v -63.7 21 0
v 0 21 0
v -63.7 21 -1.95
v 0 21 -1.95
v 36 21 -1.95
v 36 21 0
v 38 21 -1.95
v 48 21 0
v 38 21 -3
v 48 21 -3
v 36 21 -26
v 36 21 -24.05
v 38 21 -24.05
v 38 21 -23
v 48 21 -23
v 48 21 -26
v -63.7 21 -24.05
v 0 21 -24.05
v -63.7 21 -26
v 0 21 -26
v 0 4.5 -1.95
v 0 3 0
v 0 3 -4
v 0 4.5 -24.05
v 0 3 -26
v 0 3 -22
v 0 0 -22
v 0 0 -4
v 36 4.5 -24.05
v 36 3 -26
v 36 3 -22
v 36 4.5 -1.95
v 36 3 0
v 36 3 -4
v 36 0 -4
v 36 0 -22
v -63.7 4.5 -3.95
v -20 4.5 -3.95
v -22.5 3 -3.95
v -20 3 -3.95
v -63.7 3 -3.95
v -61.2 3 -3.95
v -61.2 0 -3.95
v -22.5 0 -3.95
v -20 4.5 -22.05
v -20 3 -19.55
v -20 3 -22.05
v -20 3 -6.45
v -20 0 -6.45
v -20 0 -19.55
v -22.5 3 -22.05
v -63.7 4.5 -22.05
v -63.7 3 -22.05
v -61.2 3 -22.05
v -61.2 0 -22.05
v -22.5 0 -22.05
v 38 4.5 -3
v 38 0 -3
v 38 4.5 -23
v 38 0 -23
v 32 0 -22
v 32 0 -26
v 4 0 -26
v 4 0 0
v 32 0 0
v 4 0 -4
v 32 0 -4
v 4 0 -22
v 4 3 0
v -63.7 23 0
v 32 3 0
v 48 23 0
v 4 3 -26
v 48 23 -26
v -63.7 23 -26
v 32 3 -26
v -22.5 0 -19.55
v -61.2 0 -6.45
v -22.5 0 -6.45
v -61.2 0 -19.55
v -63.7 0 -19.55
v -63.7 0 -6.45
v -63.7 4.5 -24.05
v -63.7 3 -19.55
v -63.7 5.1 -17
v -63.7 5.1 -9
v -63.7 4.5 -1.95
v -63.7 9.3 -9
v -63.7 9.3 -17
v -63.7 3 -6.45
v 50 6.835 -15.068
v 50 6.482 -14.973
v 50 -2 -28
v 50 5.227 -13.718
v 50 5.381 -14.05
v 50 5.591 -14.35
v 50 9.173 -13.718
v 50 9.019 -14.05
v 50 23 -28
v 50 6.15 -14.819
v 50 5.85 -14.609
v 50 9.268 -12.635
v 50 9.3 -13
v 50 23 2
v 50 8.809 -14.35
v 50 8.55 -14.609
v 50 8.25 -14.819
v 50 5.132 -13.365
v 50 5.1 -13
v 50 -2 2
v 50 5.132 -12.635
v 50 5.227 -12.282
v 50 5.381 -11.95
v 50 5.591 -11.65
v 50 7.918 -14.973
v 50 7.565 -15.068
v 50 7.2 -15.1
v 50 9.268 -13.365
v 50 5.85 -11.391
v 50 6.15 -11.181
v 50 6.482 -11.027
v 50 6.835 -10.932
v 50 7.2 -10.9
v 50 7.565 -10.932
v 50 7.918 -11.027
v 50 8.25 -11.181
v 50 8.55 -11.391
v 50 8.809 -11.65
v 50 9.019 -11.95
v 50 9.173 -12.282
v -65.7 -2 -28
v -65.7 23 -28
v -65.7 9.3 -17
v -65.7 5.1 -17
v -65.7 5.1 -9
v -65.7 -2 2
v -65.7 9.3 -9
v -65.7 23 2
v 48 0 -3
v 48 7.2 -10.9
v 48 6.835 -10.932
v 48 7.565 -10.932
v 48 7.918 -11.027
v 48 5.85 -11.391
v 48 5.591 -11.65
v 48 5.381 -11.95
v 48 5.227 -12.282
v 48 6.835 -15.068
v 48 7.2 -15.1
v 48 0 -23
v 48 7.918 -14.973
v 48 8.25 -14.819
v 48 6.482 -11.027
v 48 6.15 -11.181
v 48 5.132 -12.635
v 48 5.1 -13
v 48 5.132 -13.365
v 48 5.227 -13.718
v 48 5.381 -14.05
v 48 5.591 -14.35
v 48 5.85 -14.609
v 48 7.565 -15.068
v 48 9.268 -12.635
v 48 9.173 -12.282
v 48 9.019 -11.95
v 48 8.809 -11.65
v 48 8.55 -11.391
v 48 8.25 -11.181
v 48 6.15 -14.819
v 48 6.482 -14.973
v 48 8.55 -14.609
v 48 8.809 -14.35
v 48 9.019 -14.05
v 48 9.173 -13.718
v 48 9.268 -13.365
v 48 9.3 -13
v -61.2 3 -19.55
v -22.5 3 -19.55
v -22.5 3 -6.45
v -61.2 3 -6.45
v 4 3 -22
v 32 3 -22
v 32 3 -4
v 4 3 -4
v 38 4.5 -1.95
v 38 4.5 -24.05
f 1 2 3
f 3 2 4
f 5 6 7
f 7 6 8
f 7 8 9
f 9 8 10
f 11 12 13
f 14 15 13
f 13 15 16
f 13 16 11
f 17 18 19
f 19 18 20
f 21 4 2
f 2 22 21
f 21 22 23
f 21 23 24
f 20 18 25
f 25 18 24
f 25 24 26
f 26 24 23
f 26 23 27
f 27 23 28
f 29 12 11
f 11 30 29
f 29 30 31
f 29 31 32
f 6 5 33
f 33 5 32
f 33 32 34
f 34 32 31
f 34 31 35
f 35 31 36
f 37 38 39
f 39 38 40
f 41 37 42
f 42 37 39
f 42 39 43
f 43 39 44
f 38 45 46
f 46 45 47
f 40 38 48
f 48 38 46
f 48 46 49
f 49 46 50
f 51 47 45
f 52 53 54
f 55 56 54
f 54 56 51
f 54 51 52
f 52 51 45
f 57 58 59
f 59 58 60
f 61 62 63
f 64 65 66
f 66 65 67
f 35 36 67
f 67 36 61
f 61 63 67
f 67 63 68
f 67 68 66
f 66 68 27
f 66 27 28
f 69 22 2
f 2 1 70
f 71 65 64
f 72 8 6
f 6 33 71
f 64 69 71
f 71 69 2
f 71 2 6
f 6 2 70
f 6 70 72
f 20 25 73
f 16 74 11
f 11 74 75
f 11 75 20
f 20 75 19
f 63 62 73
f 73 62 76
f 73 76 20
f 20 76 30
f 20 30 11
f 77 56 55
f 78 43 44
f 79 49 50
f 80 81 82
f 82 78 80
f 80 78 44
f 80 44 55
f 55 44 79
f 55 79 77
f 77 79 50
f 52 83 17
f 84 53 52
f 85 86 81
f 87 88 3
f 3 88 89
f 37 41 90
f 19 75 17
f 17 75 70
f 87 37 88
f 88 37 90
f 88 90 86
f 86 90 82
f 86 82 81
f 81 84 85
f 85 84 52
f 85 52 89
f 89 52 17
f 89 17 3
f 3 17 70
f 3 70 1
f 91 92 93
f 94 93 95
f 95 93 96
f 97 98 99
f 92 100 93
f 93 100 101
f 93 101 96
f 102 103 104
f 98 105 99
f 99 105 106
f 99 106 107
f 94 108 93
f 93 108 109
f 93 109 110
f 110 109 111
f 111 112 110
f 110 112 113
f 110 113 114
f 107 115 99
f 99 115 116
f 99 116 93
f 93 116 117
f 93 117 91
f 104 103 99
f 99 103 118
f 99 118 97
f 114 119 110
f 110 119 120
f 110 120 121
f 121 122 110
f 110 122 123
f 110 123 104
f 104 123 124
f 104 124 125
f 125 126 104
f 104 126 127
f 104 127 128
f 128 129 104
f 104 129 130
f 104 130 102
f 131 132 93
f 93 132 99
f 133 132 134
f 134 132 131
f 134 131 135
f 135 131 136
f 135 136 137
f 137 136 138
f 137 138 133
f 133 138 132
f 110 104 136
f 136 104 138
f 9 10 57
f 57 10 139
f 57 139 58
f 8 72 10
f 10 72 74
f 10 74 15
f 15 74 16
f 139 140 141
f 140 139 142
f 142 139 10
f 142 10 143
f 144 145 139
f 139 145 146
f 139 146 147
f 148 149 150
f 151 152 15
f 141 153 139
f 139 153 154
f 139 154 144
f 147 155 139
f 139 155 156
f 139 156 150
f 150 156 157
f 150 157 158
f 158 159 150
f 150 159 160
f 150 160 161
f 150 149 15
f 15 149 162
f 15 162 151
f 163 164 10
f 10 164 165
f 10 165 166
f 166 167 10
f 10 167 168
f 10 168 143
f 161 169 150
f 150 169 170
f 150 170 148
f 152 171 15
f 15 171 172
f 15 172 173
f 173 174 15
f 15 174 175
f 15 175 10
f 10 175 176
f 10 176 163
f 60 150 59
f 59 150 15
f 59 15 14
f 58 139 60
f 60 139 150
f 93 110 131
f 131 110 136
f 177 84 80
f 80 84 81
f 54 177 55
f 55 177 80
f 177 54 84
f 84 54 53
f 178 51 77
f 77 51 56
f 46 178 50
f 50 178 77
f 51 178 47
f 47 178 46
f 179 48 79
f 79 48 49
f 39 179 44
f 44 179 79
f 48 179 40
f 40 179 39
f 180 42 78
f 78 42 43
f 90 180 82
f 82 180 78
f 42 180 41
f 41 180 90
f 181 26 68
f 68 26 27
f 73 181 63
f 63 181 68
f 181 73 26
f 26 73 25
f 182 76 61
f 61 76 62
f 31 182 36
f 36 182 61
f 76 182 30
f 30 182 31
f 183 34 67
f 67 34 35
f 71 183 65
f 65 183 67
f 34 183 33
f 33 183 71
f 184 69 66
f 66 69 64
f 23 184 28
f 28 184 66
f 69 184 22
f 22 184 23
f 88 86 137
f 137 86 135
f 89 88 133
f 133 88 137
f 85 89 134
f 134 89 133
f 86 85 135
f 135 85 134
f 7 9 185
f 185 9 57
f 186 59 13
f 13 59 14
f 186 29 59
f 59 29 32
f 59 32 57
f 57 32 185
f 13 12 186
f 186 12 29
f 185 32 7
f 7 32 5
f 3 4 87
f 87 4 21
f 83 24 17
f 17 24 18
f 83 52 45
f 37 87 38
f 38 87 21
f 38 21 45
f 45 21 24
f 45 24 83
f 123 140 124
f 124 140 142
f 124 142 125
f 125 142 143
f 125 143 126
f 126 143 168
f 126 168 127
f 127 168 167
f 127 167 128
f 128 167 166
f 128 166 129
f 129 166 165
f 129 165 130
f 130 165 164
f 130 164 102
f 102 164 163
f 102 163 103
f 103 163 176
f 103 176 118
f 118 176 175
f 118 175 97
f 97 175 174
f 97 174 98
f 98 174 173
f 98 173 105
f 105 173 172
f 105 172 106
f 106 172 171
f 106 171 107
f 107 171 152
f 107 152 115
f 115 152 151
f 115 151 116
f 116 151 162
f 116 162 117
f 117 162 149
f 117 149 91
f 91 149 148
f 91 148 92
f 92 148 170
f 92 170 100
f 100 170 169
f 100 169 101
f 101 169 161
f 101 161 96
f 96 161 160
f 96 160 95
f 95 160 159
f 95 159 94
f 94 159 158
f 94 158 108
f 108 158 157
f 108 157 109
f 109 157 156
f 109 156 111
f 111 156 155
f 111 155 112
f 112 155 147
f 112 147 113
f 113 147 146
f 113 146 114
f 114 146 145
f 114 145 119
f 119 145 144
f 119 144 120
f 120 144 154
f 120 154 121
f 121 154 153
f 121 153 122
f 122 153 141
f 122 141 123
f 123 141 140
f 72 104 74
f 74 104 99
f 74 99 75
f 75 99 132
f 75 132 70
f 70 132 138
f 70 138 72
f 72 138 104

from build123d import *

# Parameters (mm, degrees)
ESQUISSE1_W             = 115.7
ESQUISSE1_H             = 30
ESQUISSE1_W_2           = 36
ESQUISSE1_H_2           = 26
ESQUISSE1_W_3           = 43.7
ESQUISSE1_H_3           = 18.1
ESQUISSE1_W_4           = 10
ESQUISSE1_H_4           = 20
BOSS_EXTRU_1_DEPTH      = 21
ESQUISSE2_W             = 115.7
ESQUISSE2_H             = 30
BOSS_EXTRU_2_DEPTH      = 2
ESQUISSE3_W             = 2.5
ESQUISSE3_H             = 2.5
BOSS_EXTRU_3_DEPTH      = 3
ESQUISSE4_W             = 4
ESQUISSE4_H             = 4
BOSS_EXTRU_4_DEPTH      = 3
ESQUISSE5_W             = 8
ESQUISSE5_H             = 4.2
ENL_V_MAT_EXTRU_1_DEPTH = 2
ESQUISSE7_W             = 101.7
ESQUISSE7_H             = 22.1
ENL_V_MAT_EXTRU_2_DEPTH = 16.5
ESQUISSE8_R             = 2.1
ENL_V_MAT_EXTRU_3_DEPTH = 2
ESQUISSE9_W             = 115.7
ESQUISSE9_H             = 30
ESQUISSE9_W_2           = 111.7
ESQUISSE9_H_2           = 26
BOSS_EXTRU_5_DEPTH      = 2


with BuildPart() as part:
    # Esquisse1 → Boss.-Extru.1 (new body)
    with BuildSketch(Plane(origin=(0, 0, 0), x_dir=(1, 0, 0), z_dir=(0, 1, 0))):
        with Locations((-7.85, 13)):
            Rectangle(ESQUISSE1_W, ESQUISSE1_H)
        with Locations((18, 13)):
            Rectangle(ESQUISSE1_W_2, ESQUISSE1_H_2, mode=Mode.SUBTRACT)
        with Locations((-41.85, 13)):
            Rectangle(ESQUISSE1_W_3, ESQUISSE1_H_3, mode=Mode.SUBTRACT)
        with Locations((43, 13)):
            Rectangle(ESQUISSE1_W_4, ESQUISSE1_H_4, mode=Mode.SUBTRACT)
    extrude(amount=BOSS_EXTRU_1_DEPTH)

    # Esquisse2 → Boss.-Extru.2 (add)
    with BuildSketch(Plane(origin=(0, 0, 0), x_dir=(-1, 0, 0), z_dir=(0, -1, 0))):
        with Locations((7.85, 13)):
            Rectangle(ESQUISSE2_W, ESQUISSE2_H)
    extrude(amount=BOSS_EXTRU_2_DEPTH)

    # Esquisse3 → Boss.-Extru.3 (add)
    with BuildSketch(Plane(origin=(0, 0, 0), x_dir=(1, 0, 0), z_dir=(0, 1, 0))):
        with Locations((-62.45, 20.8)):
            Rectangle(ESQUISSE3_W, ESQUISSE3_H)
        with Locations((-21.25, 20.8)):
            Rectangle(ESQUISSE3_W, ESQUISSE3_H)
        with Locations((-21.25, 5.2)):
            Rectangle(ESQUISSE3_W, ESQUISSE3_H)
        with Locations((-62.45, 5.2)):
            Rectangle(ESQUISSE3_W, ESQUISSE3_H)
    extrude(amount=BOSS_EXTRU_3_DEPTH)

    # Esquisse4 → Boss.-Extru.4 (add)
    with BuildSketch(Plane(origin=(0, 0, 0), x_dir=(1, 0, 0), z_dir=(0, 1, 0))):
        with Locations((2, 24)):
            Rectangle(ESQUISSE4_W, ESQUISSE4_H)
        with Locations((34, 24)):
            Rectangle(ESQUISSE4_W, ESQUISSE4_H)
        with Locations((34, 2)):
            Rectangle(ESQUISSE4_W, ESQUISSE4_H)
        with Locations((2, 2)):
            Rectangle(ESQUISSE4_W, ESQUISSE4_H)
    extrude(amount=BOSS_EXTRU_4_DEPTH)

    # Esquisse5 → Enlèv. mat.-Extru.1 (cut)
    with BuildSketch(Plane(origin=(-63.7, 0, 0), x_dir=(0, 0, -1), z_dir=(1, 0, 0))):
        with Locations((13, 7.2)):
            Rectangle(ESQUISSE5_W, ESQUISSE5_H)
    extrude(amount=-ENL_V_MAT_EXTRU_1_DEPTH, mode=Mode.SUBTRACT)

    # Esquisse7 → Enlèv. mat.-Extru.2 (cut)
    with BuildSketch(Plane(origin=(0, 4.5, 0), x_dir=(1, 0, 0), z_dir=(0, 1, 0))):
        with Locations((-12.85, 13)):
            Rectangle(ESQUISSE7_W, ESQUISSE7_H)
    extrude(amount=ENL_V_MAT_EXTRU_2_DEPTH, mode=Mode.SUBTRACT)

    # Esquisse8 → Enlèv. mat.-Extru.3 (cut)
    with BuildSketch(Plane.ZY.offset(-48)):
        with Locations((-13, 7.2)):
            Circle(ESQUISSE8_R)
    extrude(amount=-ENL_V_MAT_EXTRU_3_DEPTH, mode=Mode.SUBTRACT)

    # Esquisse9 → Boss.-Extru.5 (add)
    with BuildSketch(Plane(origin=(0, 21, 0), x_dir=(1, 0, 0), z_dir=(0, 1, 0))):
        with Locations((-7.85, 13)):
            Rectangle(ESQUISSE9_W, ESQUISSE9_H)
        with Locations((-7.85, 13)):
            Rectangle(ESQUISSE9_W_2, ESQUISSE9_H_2, mode=Mode.SUBTRACT)
    extrude(amount=BOSS_EXTRU_5_DEPTH)


solid = part.part
